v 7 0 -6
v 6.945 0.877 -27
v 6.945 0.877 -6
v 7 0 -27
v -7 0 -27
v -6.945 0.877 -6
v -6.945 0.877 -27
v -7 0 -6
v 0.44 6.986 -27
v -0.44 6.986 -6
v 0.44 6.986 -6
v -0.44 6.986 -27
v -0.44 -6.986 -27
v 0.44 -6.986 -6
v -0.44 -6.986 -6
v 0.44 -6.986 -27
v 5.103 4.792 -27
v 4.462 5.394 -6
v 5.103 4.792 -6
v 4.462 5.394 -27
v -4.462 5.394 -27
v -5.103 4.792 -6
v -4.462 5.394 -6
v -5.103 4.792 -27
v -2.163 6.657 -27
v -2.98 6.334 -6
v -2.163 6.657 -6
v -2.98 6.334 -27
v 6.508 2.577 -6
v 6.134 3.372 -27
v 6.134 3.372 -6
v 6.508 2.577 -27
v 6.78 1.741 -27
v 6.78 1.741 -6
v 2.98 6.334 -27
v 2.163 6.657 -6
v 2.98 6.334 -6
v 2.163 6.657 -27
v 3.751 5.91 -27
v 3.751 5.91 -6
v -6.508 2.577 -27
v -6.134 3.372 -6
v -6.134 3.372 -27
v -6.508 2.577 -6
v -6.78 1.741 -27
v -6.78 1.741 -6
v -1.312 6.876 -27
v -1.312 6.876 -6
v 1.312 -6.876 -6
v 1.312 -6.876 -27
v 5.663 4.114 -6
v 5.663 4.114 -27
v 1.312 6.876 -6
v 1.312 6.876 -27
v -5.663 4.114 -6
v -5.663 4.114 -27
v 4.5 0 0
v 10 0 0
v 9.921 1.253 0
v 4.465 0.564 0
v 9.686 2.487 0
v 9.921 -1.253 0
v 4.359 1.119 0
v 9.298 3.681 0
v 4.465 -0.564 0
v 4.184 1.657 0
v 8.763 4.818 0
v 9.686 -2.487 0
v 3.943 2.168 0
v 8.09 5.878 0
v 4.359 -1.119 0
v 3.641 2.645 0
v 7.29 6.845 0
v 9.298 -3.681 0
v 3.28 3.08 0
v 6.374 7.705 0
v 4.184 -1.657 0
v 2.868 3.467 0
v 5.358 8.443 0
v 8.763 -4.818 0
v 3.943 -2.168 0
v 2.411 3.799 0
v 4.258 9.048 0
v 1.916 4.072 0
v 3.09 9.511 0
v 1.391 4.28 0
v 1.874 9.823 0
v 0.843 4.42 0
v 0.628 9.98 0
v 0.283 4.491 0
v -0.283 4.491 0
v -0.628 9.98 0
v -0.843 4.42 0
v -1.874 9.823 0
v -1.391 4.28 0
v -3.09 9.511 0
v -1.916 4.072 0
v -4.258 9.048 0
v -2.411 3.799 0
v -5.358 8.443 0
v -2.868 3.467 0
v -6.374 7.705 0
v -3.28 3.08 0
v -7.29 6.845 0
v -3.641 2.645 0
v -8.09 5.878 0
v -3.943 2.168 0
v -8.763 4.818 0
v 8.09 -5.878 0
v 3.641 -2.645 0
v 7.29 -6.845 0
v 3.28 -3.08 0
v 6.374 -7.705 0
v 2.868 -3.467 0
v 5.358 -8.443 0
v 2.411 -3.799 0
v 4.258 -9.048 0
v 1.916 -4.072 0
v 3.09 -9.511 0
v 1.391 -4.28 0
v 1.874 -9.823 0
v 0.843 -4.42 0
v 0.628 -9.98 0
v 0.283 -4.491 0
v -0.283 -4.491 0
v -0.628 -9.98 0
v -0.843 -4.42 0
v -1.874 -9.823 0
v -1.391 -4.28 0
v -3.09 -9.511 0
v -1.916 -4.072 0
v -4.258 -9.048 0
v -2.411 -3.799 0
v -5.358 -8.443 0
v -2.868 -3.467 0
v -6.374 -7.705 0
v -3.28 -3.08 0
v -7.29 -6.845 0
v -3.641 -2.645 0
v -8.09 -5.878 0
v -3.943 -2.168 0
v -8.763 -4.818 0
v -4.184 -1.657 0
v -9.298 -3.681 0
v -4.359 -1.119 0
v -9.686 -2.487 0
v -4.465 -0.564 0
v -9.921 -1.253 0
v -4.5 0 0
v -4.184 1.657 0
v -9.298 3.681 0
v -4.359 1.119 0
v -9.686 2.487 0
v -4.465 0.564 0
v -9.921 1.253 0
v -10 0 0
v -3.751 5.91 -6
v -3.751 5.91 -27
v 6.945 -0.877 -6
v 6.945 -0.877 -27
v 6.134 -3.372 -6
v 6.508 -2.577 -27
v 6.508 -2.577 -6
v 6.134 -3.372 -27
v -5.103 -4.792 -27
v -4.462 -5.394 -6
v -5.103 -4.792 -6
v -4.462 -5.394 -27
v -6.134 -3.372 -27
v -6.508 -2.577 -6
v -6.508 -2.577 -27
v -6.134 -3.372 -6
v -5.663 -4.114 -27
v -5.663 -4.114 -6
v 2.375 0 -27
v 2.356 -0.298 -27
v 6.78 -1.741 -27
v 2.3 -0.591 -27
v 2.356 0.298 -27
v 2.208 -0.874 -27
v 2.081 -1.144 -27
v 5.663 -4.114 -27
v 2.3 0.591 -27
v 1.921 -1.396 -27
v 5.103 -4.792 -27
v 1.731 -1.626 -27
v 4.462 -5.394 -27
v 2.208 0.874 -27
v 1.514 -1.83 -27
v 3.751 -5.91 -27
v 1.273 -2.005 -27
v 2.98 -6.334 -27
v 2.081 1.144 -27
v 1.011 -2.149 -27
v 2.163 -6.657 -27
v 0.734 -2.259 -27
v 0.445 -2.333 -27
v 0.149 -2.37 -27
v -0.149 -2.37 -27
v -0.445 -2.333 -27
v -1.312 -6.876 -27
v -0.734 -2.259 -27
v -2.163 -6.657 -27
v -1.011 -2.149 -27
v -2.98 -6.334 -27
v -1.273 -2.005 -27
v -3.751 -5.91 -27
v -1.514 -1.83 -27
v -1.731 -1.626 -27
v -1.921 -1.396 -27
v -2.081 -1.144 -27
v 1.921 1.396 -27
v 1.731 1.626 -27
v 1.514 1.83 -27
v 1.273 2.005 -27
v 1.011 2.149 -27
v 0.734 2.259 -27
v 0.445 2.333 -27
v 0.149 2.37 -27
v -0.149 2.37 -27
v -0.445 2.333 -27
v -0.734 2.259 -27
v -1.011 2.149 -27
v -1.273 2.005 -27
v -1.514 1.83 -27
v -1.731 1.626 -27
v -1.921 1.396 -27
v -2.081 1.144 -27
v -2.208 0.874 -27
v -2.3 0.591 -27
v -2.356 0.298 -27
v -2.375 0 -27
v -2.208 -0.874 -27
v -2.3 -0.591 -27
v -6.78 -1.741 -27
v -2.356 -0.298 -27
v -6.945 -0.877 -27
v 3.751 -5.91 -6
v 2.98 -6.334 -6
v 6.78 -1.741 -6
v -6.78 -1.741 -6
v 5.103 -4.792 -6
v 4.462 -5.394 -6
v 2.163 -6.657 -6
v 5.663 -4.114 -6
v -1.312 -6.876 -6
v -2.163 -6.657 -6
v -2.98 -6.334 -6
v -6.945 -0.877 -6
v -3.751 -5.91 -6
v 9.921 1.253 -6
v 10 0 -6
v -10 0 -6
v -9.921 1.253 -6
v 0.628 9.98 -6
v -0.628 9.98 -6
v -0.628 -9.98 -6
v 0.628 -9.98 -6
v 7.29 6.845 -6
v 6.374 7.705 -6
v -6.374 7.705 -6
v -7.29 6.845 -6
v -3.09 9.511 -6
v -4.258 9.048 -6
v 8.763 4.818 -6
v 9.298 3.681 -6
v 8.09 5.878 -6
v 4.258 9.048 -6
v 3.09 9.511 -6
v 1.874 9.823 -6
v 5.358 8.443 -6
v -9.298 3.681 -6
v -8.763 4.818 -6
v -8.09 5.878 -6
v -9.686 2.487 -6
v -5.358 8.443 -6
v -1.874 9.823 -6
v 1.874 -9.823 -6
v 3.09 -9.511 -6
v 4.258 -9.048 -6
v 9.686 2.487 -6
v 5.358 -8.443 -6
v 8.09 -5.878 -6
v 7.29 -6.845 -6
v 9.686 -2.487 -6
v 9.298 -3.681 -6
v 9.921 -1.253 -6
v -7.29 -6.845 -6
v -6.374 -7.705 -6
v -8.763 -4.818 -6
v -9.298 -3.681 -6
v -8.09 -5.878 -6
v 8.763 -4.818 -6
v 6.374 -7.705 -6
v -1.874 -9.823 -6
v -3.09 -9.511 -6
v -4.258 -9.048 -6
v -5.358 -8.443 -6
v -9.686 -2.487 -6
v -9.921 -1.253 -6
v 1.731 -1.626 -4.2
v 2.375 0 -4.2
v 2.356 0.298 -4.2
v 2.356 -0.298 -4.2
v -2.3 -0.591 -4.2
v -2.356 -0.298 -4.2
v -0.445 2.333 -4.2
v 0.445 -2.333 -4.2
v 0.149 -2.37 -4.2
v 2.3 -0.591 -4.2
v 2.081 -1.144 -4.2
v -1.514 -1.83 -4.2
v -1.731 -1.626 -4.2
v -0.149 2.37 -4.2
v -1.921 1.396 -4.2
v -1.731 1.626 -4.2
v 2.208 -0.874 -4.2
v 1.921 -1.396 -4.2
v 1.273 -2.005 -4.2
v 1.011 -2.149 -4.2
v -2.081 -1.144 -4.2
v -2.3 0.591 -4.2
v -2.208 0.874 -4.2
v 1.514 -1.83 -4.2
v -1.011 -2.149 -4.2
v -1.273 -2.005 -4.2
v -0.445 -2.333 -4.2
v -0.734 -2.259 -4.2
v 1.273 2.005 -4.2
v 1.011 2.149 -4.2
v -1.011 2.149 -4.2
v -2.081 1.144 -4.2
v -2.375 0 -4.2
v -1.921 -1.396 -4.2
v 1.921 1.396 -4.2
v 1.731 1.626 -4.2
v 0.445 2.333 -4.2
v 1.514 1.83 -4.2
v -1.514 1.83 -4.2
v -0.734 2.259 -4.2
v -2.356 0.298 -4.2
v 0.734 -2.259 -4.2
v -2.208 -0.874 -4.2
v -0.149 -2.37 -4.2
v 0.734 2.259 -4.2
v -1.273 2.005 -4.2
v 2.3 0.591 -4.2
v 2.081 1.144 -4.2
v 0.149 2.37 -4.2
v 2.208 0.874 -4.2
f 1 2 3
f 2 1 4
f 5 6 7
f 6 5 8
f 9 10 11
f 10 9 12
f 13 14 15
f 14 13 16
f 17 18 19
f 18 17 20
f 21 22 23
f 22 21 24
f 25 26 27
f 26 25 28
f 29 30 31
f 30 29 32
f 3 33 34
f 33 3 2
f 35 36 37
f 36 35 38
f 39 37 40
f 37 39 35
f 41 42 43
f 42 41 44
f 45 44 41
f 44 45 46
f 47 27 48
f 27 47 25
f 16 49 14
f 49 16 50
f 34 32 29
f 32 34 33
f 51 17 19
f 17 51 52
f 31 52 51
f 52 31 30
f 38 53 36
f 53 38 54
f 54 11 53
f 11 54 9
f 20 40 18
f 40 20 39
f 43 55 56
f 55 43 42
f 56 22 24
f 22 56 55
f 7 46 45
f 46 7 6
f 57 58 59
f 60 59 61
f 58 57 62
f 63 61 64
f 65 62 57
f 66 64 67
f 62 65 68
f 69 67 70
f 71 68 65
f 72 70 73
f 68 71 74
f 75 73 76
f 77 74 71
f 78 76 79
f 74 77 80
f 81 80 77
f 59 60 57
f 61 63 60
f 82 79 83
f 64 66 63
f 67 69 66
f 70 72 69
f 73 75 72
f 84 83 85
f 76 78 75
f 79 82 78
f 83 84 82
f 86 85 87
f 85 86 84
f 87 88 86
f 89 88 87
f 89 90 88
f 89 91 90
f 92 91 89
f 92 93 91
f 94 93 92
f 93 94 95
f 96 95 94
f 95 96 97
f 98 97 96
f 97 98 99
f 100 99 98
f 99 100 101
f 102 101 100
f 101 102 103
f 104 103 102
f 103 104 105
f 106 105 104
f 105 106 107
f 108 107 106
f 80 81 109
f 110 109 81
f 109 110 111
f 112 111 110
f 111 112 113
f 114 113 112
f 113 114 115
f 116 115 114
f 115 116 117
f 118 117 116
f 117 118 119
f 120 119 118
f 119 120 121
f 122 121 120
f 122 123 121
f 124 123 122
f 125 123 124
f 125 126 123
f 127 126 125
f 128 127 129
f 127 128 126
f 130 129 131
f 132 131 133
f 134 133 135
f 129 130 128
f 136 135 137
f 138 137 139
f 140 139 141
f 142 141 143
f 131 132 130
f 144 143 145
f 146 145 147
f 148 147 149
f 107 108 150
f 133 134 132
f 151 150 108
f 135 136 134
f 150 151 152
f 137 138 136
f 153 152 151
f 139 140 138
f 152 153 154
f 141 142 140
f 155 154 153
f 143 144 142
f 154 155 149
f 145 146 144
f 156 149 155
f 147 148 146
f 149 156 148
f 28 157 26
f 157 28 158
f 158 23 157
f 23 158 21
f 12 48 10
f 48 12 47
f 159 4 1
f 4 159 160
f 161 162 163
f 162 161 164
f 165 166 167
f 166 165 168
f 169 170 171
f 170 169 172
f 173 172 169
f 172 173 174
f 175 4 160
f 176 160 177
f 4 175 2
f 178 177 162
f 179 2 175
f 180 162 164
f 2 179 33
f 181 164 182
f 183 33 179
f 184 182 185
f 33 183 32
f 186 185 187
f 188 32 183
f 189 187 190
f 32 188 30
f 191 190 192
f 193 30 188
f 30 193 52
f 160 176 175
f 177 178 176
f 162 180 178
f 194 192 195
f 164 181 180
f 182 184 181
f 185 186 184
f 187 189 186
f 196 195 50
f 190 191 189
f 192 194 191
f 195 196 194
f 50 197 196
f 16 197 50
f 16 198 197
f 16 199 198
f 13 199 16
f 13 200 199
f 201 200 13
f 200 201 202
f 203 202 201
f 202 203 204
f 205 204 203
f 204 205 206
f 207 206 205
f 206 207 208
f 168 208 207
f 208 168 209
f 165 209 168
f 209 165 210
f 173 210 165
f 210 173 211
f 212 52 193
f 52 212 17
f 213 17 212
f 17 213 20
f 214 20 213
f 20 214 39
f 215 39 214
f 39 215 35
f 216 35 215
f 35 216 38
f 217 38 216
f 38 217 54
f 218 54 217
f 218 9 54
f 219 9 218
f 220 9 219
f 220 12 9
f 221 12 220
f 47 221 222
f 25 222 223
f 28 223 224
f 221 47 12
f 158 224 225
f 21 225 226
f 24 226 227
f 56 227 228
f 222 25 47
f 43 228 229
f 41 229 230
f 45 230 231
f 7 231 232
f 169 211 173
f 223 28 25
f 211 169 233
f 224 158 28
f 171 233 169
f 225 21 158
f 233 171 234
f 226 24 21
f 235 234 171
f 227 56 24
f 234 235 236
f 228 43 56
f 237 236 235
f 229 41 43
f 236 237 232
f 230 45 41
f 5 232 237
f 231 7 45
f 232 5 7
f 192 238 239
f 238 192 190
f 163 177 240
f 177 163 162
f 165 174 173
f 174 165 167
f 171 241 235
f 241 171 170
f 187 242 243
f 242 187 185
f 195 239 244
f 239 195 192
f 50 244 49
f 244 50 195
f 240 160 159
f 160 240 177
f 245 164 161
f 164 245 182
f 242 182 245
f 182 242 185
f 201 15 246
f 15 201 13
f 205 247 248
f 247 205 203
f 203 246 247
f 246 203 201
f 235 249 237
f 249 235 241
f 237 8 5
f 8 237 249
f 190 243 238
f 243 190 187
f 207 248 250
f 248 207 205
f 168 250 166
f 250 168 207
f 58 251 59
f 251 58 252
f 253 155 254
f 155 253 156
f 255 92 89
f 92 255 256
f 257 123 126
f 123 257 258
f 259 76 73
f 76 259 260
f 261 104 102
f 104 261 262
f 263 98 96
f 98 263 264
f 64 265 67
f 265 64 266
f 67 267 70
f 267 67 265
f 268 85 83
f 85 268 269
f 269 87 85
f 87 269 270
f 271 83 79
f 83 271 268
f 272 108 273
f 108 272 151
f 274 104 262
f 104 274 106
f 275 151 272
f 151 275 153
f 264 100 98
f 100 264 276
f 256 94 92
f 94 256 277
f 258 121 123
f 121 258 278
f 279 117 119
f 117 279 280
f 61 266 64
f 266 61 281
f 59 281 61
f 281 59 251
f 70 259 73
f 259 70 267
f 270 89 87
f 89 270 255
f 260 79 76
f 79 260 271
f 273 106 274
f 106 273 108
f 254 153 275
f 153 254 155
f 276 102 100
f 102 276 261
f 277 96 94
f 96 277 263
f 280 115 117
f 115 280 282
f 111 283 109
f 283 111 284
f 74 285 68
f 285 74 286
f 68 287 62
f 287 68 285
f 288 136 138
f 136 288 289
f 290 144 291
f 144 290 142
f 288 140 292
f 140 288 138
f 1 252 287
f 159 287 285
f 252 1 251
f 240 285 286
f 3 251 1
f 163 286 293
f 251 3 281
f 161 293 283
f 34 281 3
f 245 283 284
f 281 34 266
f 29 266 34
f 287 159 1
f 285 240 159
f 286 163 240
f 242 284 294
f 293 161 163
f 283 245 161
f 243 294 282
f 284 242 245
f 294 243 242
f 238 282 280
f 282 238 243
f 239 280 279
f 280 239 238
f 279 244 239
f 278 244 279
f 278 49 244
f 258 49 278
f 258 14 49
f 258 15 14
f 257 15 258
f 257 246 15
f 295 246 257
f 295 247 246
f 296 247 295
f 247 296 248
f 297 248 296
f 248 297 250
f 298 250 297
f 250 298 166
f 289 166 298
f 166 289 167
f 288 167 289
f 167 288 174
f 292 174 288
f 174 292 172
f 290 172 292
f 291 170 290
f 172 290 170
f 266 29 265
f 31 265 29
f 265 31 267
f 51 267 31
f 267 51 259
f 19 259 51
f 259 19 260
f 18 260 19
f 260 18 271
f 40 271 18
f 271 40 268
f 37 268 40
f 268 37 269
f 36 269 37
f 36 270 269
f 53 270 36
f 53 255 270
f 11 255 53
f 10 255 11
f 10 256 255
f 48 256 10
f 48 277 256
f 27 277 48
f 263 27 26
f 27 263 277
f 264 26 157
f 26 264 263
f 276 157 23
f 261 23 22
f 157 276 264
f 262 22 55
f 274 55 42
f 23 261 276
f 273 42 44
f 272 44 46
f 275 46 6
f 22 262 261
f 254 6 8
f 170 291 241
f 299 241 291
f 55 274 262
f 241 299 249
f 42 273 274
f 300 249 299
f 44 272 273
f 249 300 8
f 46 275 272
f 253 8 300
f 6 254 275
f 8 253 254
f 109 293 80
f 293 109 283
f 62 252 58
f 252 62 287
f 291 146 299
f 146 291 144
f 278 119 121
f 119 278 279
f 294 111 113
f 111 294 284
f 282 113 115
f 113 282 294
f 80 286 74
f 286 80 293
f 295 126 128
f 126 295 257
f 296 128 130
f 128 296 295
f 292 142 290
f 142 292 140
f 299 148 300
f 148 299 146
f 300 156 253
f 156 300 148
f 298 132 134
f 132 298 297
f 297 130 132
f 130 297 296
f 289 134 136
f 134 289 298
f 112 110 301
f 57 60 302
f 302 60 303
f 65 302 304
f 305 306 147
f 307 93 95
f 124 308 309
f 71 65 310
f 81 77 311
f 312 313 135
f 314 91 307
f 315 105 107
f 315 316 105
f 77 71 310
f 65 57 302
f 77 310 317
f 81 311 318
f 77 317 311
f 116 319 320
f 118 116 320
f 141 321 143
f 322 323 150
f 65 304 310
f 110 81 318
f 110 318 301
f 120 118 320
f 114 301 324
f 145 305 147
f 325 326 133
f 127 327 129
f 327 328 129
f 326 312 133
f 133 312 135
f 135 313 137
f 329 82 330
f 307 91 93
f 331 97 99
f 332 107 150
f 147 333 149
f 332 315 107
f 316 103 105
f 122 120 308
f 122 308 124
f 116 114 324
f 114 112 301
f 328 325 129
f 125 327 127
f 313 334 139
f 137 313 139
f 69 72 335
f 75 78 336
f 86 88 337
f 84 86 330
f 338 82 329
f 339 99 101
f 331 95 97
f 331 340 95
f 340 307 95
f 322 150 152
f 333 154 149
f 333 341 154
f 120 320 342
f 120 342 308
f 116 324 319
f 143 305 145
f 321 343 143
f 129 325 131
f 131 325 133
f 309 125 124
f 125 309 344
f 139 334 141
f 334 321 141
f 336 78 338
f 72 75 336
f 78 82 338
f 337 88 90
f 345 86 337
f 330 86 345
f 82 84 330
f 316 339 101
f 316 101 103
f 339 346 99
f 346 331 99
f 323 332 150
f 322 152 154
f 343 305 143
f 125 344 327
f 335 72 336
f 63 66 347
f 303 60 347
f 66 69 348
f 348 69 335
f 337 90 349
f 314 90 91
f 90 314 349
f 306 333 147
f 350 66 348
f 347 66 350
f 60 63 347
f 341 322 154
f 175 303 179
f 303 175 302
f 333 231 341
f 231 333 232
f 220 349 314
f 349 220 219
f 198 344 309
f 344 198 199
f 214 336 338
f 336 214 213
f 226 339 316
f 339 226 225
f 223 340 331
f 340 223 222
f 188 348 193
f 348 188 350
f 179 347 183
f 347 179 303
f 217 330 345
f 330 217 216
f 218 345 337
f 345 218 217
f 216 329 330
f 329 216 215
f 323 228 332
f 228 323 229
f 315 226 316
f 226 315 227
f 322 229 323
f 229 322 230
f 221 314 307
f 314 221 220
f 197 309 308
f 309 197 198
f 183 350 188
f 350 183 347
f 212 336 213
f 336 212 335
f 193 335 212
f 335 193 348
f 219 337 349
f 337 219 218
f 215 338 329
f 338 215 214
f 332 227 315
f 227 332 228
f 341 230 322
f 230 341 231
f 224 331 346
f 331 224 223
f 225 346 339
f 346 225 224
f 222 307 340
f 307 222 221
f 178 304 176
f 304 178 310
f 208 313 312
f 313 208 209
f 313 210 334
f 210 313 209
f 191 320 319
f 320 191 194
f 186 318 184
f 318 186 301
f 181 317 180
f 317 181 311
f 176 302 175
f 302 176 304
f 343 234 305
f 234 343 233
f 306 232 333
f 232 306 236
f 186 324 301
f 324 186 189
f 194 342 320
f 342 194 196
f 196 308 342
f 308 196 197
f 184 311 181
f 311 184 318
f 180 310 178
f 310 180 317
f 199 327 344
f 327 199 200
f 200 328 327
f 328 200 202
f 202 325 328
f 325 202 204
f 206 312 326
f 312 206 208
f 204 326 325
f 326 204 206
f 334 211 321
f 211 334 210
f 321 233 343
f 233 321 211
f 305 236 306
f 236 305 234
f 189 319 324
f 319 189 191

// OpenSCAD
$fn = 50;


difference() {
	union() {
		translate(v = [0, 0, -27.0000000000]) {
			cylinder(h = 27, r = 7.0000000000);
		}
		translate(v = [0, 0, -6.0000000000]) {
			cylinder(h = 6, r = 10.0000000000);
		}
	}
	union() {
		translate(v = [0, 0, 0]) {
			rotate(a = [0, 0, 0]) {
				difference() {
					union() {
						#translate(v = [0, 0, -27.0000000000]) {
							cylinder(h = 27, r = 2.2500000000);
						}
						#translate(v = [0, 0, -4.2000000000]) {
							cylinder(h = 4.2000000000, r1 = 2.3750000000, r2 = 4.5000000000);
						}
						#translate(v = [0, 0, -27.0000000000]) {
							cylinder(h = 27, r = 2.3750000000);
						}
						#translate(v = [0, 0, -27.0000000000]) {
							cylinder(h = 27, r = 2.2500000000);
						}
					}
					union();
				}
			}
		}
	}
}
